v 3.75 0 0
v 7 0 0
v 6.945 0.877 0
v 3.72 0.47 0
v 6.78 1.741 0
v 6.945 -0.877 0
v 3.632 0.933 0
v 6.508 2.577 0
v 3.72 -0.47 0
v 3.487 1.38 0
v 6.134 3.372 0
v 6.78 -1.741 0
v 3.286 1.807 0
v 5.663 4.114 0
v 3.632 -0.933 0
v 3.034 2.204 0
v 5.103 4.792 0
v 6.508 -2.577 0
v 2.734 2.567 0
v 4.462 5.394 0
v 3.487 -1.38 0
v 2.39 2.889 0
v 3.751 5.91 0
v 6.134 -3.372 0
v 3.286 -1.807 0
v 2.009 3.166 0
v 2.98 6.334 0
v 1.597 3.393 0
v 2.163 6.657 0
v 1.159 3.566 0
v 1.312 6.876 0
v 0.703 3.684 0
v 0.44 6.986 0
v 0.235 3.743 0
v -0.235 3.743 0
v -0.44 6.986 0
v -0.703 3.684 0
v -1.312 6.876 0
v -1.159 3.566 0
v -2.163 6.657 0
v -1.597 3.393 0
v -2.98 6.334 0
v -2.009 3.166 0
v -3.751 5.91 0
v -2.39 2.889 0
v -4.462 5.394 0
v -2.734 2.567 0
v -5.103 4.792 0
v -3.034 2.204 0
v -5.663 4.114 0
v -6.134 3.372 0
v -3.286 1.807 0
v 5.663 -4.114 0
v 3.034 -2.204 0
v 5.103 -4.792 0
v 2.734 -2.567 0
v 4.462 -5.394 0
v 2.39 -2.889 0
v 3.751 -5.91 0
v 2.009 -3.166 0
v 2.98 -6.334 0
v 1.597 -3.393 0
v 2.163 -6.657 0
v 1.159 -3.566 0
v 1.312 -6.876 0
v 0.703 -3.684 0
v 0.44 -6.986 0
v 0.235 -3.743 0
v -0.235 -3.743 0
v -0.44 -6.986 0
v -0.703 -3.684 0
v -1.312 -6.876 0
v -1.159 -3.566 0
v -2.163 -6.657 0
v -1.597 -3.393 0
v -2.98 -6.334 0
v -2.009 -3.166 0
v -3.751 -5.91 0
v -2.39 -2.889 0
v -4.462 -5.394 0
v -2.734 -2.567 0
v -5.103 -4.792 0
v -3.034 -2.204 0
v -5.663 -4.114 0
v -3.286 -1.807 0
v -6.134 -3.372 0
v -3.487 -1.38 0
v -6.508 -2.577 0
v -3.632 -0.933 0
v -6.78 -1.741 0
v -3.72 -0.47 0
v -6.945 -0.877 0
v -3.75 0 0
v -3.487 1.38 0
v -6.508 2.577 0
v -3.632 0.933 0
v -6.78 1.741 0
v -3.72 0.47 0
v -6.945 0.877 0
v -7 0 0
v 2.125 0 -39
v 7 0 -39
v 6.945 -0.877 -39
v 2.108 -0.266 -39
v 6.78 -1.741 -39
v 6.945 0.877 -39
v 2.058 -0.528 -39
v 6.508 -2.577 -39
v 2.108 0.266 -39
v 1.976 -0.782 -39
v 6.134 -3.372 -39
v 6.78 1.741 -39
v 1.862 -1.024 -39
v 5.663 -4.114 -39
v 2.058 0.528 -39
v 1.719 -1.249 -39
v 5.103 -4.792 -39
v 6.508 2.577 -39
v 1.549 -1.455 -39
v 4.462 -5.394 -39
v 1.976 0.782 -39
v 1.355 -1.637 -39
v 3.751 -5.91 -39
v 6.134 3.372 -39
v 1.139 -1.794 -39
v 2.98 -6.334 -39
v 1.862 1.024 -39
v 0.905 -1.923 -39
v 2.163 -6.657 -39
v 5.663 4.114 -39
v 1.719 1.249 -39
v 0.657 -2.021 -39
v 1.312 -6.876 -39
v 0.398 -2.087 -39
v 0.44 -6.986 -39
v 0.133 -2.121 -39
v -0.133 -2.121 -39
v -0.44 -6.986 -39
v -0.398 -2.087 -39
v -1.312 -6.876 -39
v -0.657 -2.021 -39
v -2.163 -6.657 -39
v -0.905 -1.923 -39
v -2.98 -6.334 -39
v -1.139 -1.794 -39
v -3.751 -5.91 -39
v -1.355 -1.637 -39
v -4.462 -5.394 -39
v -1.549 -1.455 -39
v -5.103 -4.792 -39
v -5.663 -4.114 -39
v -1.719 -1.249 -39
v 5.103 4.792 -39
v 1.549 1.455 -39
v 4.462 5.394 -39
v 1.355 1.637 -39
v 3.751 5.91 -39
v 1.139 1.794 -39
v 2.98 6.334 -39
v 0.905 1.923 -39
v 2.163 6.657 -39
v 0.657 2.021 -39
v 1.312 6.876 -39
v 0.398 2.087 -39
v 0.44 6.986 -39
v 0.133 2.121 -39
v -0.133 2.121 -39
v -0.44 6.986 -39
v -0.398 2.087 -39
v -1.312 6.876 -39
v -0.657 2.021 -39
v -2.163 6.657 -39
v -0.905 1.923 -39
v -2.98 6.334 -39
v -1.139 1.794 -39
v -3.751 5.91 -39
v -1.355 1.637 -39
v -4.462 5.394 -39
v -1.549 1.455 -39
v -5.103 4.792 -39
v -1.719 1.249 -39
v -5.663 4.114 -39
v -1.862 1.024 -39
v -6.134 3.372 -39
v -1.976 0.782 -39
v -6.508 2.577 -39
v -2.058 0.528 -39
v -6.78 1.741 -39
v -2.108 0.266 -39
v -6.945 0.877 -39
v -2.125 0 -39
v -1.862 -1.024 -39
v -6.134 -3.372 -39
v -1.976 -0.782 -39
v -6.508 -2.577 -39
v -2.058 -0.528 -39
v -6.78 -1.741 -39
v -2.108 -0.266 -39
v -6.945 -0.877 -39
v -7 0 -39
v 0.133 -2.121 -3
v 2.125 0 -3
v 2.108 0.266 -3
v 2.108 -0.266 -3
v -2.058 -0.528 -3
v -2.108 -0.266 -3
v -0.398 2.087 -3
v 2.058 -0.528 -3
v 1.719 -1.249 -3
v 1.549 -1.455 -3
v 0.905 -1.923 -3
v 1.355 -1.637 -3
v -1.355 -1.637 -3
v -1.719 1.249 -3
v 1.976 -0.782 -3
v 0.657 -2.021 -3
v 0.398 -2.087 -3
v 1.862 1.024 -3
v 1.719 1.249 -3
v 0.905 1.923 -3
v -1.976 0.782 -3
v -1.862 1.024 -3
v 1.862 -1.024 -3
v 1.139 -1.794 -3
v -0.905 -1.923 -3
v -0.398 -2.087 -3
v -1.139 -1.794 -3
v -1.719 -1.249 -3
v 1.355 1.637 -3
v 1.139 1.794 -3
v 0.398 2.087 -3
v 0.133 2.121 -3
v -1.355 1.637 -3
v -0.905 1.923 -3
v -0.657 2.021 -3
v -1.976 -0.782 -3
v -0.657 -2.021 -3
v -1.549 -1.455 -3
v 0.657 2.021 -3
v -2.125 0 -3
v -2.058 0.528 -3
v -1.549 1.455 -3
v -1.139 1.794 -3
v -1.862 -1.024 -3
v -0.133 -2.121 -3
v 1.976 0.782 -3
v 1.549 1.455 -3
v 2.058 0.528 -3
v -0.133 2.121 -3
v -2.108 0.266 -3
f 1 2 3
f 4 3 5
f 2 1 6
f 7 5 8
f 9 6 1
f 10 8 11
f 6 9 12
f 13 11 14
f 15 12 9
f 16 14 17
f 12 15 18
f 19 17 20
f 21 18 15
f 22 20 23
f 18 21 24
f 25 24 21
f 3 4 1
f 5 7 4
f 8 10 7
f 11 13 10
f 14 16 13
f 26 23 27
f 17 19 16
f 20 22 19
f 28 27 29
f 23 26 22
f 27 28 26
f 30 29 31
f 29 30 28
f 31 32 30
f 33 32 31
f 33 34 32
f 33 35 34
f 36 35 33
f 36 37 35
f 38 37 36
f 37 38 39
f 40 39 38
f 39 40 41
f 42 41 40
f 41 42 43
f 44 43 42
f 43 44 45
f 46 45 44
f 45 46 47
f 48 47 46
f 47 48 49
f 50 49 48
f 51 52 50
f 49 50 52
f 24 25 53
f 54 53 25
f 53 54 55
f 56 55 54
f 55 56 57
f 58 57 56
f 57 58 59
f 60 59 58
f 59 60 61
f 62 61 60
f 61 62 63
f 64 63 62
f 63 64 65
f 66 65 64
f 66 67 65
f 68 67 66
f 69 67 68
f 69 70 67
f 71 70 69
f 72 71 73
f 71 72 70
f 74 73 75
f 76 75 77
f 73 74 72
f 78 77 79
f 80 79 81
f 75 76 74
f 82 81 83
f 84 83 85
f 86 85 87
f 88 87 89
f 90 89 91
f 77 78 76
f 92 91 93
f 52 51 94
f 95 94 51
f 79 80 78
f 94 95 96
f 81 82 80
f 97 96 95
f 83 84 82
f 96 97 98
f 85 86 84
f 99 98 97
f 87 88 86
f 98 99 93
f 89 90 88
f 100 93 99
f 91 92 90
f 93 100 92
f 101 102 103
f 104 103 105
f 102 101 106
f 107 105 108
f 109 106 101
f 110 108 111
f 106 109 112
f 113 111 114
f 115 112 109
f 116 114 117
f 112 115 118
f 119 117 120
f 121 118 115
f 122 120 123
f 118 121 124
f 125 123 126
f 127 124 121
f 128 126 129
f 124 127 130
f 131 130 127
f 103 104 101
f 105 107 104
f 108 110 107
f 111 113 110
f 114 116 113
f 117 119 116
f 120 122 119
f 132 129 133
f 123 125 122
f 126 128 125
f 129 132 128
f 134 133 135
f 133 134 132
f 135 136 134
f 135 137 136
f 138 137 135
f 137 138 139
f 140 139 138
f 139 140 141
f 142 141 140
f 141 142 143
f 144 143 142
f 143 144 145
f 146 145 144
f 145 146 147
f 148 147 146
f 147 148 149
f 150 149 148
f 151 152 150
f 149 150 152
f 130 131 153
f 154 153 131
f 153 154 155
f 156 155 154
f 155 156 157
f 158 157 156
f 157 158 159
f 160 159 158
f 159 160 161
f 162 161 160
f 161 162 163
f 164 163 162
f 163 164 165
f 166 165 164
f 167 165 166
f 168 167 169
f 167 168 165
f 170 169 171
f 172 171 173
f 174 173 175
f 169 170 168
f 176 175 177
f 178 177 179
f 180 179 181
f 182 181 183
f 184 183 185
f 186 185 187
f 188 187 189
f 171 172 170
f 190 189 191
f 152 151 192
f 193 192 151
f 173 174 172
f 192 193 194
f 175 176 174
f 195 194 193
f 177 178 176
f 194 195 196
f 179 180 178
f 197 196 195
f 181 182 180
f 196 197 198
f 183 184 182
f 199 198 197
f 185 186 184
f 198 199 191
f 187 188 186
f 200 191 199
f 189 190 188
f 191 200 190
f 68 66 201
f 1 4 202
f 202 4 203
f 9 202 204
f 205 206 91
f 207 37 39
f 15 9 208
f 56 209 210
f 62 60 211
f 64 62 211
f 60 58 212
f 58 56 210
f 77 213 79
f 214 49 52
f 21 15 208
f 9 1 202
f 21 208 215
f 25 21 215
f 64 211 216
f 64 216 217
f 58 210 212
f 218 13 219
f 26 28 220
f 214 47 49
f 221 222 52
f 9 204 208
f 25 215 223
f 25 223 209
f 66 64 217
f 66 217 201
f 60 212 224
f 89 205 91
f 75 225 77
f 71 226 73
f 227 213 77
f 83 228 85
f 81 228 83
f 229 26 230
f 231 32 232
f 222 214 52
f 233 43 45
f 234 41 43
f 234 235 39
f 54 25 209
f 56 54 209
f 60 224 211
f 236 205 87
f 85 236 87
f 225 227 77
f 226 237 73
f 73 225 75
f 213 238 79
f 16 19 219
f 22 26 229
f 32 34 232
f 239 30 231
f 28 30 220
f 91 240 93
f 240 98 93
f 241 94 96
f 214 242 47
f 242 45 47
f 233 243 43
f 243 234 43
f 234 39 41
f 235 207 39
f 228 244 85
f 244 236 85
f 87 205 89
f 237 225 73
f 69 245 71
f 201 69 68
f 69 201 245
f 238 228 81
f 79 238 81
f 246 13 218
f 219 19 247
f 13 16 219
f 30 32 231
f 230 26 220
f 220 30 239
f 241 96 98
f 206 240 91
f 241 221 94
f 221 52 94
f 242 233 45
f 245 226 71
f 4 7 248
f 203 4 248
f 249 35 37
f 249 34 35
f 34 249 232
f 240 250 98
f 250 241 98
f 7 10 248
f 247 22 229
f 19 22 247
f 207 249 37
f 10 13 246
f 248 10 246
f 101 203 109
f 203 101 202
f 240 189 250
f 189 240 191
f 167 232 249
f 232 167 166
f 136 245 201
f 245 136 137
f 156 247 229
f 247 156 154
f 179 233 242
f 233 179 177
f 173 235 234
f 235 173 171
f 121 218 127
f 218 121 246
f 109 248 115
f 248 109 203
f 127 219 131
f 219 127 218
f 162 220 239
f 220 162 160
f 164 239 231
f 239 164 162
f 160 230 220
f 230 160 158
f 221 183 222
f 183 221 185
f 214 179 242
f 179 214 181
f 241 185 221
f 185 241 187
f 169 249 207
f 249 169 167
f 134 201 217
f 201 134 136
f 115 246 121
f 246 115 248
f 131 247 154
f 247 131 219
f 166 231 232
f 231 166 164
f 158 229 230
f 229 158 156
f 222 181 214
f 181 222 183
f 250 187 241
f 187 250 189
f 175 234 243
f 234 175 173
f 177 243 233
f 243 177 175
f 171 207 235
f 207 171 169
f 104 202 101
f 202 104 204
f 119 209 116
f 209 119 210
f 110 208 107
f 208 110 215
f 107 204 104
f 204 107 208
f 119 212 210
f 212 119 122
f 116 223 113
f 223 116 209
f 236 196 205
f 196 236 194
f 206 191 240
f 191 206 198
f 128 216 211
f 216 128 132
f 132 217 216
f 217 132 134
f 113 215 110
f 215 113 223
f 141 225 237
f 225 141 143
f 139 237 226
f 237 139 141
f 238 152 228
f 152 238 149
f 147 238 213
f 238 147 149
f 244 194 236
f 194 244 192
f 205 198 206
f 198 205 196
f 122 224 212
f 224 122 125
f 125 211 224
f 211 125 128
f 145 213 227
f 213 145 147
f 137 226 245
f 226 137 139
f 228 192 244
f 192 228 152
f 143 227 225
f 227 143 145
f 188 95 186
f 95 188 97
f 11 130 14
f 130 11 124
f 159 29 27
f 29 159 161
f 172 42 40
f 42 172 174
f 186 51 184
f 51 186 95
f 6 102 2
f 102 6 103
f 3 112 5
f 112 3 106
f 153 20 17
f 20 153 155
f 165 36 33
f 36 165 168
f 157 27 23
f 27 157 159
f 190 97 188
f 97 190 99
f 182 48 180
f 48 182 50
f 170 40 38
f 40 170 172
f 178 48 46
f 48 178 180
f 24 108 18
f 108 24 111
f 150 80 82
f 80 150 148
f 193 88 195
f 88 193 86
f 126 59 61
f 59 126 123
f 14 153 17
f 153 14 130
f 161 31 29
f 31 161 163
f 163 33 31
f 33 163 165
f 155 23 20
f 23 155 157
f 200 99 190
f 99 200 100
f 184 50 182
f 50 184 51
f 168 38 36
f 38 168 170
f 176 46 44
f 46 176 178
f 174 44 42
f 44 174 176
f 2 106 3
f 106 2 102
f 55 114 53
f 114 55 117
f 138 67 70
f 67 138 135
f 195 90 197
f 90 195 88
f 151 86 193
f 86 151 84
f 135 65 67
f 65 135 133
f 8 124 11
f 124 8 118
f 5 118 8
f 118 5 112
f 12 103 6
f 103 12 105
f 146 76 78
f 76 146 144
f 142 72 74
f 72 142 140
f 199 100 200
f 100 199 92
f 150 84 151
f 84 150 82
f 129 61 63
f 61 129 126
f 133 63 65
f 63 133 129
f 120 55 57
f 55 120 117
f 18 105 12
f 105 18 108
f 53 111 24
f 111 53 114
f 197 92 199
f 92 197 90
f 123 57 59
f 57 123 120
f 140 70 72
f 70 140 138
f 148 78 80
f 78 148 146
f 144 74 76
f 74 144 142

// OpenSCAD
$fn = 50;


difference() {
	union() {
		translate(v = [0, 0, -39.0000000000]) {
			cylinder(h = 39, r = 7.0000000000);
		}
	}
	union() {
		translate(v = [0, 0, 0]) {
			rotate(a = [0, 0, 0]) {
				difference() {
					union() {
						#translate(v = [0, 0, -39.0000000000]) {
							cylinder(h = 39, r = 2.0000000000);
						}
						#translate(v = [0, 0, -3]) {
							cylinder(h = 3, r1 = 2.1250000000, r2 = 3.7500000000);
						}
						#translate(v = [0, 0, -39.0000000000]) {
							cylinder(h = 39, r = 2.1250000000);
						}
						#translate(v = [0, 0, -39.0000000000]) {
							cylinder(h = 39, r = 2.0000000000);
						}
					}
					union();
				}
			}
		}
	}
}
